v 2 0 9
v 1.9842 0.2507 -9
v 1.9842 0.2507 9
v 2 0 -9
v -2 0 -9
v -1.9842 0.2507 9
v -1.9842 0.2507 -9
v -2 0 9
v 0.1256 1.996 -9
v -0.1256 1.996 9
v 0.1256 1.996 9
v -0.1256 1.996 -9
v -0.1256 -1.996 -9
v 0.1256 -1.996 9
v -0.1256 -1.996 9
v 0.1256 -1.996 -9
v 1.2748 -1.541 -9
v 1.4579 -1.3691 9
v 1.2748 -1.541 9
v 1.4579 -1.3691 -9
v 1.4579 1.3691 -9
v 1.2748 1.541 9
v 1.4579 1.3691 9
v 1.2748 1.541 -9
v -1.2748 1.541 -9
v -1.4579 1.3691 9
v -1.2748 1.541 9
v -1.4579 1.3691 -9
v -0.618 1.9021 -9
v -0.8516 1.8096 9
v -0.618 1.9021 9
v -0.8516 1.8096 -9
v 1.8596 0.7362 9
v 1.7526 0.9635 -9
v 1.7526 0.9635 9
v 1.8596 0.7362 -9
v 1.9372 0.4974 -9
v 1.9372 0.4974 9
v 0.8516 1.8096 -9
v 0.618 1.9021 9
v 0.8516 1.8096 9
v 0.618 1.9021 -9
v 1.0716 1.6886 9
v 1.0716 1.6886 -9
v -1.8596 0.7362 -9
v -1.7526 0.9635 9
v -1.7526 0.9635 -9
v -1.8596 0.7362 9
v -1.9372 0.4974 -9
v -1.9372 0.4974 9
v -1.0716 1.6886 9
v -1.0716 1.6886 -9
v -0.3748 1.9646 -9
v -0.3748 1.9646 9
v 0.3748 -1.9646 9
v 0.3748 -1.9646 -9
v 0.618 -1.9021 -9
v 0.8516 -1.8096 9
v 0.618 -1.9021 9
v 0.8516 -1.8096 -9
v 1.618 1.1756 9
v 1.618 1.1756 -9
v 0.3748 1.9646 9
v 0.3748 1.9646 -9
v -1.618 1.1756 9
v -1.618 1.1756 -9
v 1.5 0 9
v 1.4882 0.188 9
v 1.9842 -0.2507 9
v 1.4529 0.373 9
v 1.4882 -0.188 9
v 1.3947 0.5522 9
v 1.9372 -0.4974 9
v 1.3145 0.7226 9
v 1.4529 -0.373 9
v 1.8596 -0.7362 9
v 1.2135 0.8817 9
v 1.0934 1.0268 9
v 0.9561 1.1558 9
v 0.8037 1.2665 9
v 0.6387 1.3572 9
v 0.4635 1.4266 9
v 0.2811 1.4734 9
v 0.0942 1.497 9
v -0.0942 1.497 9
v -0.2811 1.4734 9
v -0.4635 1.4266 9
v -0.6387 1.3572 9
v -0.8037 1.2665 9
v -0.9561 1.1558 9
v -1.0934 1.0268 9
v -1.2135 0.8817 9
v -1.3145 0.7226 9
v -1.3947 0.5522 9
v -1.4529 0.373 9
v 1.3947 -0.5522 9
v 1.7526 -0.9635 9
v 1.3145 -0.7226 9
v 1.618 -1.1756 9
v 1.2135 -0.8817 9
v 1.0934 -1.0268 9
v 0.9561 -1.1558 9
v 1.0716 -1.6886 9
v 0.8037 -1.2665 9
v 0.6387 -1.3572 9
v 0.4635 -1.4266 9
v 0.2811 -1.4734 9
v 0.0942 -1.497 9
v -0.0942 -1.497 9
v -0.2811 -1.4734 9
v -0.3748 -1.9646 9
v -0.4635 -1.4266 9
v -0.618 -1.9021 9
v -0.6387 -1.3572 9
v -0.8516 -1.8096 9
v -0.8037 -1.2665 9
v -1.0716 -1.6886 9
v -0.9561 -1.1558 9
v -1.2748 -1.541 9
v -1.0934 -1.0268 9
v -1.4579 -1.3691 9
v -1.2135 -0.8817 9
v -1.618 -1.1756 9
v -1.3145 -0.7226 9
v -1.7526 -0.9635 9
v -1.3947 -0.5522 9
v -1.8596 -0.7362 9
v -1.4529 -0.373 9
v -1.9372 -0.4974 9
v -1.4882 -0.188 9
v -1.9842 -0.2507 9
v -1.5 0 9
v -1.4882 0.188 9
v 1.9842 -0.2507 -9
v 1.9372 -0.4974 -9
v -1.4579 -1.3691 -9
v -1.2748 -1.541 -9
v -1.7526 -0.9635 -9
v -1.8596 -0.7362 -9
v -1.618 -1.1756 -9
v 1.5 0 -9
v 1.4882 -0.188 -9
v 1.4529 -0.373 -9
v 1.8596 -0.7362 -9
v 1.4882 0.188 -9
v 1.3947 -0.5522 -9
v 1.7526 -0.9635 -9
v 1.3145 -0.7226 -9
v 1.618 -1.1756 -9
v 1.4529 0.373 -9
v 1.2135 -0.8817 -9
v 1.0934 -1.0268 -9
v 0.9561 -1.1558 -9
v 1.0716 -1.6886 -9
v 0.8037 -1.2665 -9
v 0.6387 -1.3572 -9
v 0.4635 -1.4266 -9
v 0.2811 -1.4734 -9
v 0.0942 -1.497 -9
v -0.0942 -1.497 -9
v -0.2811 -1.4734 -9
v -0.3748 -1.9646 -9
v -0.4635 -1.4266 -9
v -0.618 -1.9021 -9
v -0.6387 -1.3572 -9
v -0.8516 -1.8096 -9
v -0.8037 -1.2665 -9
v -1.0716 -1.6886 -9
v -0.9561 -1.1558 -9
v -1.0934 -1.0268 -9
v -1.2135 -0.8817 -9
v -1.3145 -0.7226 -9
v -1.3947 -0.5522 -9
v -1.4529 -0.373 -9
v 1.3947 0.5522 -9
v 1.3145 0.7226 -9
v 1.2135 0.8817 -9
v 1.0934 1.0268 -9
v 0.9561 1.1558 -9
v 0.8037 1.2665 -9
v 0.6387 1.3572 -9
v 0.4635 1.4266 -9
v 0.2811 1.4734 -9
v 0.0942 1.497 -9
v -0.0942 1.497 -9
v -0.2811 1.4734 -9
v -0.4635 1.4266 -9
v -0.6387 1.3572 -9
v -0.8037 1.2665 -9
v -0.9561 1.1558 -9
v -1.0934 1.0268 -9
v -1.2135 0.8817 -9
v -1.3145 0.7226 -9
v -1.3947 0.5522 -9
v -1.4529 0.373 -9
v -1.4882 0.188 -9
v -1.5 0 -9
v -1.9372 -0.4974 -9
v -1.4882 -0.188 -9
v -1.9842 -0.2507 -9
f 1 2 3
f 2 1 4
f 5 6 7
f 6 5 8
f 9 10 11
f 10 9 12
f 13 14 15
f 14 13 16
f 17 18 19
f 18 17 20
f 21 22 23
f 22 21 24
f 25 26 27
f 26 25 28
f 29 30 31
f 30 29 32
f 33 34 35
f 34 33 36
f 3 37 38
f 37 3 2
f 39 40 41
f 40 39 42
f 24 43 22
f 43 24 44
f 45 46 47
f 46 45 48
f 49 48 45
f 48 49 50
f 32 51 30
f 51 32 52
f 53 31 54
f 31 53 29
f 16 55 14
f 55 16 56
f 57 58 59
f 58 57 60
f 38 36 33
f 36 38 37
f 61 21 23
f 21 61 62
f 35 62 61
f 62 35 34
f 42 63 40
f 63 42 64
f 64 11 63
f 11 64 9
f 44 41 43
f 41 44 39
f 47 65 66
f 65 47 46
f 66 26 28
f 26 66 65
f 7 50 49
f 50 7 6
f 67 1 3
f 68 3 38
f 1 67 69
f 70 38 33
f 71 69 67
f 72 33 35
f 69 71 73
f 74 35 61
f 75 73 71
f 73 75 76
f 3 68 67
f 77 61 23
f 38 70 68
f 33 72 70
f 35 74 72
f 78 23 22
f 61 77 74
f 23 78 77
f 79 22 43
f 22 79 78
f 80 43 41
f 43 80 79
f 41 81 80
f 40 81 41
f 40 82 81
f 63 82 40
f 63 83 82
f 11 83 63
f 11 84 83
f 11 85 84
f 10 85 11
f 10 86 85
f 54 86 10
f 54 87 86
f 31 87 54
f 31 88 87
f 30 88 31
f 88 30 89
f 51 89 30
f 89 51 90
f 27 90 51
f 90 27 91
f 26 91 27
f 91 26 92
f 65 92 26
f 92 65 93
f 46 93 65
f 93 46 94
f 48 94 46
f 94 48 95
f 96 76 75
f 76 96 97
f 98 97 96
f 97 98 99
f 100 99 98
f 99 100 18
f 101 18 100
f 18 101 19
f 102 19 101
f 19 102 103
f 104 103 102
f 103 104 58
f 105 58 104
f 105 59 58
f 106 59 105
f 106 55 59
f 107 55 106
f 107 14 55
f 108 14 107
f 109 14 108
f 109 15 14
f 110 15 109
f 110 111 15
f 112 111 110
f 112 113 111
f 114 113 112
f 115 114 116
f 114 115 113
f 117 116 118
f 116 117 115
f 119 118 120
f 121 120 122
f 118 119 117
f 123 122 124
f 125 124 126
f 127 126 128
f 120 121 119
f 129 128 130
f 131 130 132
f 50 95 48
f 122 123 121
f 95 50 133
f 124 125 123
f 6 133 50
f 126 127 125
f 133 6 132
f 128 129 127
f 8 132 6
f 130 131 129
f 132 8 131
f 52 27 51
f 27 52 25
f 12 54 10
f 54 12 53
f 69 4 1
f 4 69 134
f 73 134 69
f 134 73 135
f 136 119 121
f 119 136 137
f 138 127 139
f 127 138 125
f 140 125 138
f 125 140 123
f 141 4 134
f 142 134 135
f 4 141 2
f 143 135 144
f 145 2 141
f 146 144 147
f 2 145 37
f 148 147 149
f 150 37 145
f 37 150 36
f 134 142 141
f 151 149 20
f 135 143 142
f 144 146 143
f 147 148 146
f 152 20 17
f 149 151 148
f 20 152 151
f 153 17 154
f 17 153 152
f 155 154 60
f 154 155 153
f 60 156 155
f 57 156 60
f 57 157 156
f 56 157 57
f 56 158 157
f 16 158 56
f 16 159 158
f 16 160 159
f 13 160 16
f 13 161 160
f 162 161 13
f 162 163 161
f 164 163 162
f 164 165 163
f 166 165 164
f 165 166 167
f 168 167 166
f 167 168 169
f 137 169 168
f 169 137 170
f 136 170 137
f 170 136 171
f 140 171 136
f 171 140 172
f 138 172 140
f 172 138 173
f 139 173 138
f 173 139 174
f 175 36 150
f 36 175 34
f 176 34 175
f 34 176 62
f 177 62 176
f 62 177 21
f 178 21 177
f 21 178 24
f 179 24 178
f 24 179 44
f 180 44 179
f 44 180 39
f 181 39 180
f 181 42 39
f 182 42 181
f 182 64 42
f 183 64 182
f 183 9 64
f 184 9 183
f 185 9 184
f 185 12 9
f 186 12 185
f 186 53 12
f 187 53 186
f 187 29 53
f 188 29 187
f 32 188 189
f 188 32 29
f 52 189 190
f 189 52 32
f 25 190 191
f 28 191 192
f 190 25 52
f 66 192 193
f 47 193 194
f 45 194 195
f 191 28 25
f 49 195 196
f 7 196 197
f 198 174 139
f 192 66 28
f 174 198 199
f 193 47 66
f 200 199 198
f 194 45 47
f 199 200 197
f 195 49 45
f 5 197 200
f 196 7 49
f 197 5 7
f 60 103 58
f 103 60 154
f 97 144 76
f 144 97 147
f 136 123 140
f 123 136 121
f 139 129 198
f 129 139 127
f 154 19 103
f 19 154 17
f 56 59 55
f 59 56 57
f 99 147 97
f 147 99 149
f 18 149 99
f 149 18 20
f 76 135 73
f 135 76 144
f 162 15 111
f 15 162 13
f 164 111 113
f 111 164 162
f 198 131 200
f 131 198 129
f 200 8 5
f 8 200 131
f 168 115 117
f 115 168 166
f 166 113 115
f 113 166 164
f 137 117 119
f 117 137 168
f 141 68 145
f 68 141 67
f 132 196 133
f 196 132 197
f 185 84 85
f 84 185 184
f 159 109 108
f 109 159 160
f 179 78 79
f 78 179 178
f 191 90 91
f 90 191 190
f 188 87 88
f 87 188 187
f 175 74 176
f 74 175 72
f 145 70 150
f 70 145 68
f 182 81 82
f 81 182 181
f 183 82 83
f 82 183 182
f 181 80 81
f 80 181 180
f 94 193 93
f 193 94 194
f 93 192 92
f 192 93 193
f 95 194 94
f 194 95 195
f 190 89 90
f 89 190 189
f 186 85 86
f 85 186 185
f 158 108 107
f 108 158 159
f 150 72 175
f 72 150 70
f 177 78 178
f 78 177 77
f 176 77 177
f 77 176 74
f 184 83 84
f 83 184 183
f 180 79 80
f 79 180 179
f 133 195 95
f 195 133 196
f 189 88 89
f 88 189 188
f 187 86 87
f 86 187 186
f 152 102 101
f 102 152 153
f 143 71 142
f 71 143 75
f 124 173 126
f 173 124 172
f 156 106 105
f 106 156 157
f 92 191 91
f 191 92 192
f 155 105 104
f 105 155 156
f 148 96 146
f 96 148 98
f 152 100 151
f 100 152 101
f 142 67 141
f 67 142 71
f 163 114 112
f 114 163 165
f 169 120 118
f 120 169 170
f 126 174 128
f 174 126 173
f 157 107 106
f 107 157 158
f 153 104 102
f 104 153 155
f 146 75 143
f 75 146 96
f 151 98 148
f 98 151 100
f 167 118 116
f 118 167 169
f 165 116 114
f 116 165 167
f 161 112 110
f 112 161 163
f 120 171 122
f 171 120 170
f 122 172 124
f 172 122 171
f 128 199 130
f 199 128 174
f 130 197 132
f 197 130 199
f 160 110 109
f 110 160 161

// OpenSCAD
$fn = 50;


difference() {
	union() {
		translate(v = [0, 0, -9.0000000000]) {
			cylinder(h = 18, r = 2.0000000000);
		}
	}
	union() {
		translate(v = [0, 0, -100.0000000000]) {
			cylinder(h = 200, r = 1.5000000000);
		}
	}
}
